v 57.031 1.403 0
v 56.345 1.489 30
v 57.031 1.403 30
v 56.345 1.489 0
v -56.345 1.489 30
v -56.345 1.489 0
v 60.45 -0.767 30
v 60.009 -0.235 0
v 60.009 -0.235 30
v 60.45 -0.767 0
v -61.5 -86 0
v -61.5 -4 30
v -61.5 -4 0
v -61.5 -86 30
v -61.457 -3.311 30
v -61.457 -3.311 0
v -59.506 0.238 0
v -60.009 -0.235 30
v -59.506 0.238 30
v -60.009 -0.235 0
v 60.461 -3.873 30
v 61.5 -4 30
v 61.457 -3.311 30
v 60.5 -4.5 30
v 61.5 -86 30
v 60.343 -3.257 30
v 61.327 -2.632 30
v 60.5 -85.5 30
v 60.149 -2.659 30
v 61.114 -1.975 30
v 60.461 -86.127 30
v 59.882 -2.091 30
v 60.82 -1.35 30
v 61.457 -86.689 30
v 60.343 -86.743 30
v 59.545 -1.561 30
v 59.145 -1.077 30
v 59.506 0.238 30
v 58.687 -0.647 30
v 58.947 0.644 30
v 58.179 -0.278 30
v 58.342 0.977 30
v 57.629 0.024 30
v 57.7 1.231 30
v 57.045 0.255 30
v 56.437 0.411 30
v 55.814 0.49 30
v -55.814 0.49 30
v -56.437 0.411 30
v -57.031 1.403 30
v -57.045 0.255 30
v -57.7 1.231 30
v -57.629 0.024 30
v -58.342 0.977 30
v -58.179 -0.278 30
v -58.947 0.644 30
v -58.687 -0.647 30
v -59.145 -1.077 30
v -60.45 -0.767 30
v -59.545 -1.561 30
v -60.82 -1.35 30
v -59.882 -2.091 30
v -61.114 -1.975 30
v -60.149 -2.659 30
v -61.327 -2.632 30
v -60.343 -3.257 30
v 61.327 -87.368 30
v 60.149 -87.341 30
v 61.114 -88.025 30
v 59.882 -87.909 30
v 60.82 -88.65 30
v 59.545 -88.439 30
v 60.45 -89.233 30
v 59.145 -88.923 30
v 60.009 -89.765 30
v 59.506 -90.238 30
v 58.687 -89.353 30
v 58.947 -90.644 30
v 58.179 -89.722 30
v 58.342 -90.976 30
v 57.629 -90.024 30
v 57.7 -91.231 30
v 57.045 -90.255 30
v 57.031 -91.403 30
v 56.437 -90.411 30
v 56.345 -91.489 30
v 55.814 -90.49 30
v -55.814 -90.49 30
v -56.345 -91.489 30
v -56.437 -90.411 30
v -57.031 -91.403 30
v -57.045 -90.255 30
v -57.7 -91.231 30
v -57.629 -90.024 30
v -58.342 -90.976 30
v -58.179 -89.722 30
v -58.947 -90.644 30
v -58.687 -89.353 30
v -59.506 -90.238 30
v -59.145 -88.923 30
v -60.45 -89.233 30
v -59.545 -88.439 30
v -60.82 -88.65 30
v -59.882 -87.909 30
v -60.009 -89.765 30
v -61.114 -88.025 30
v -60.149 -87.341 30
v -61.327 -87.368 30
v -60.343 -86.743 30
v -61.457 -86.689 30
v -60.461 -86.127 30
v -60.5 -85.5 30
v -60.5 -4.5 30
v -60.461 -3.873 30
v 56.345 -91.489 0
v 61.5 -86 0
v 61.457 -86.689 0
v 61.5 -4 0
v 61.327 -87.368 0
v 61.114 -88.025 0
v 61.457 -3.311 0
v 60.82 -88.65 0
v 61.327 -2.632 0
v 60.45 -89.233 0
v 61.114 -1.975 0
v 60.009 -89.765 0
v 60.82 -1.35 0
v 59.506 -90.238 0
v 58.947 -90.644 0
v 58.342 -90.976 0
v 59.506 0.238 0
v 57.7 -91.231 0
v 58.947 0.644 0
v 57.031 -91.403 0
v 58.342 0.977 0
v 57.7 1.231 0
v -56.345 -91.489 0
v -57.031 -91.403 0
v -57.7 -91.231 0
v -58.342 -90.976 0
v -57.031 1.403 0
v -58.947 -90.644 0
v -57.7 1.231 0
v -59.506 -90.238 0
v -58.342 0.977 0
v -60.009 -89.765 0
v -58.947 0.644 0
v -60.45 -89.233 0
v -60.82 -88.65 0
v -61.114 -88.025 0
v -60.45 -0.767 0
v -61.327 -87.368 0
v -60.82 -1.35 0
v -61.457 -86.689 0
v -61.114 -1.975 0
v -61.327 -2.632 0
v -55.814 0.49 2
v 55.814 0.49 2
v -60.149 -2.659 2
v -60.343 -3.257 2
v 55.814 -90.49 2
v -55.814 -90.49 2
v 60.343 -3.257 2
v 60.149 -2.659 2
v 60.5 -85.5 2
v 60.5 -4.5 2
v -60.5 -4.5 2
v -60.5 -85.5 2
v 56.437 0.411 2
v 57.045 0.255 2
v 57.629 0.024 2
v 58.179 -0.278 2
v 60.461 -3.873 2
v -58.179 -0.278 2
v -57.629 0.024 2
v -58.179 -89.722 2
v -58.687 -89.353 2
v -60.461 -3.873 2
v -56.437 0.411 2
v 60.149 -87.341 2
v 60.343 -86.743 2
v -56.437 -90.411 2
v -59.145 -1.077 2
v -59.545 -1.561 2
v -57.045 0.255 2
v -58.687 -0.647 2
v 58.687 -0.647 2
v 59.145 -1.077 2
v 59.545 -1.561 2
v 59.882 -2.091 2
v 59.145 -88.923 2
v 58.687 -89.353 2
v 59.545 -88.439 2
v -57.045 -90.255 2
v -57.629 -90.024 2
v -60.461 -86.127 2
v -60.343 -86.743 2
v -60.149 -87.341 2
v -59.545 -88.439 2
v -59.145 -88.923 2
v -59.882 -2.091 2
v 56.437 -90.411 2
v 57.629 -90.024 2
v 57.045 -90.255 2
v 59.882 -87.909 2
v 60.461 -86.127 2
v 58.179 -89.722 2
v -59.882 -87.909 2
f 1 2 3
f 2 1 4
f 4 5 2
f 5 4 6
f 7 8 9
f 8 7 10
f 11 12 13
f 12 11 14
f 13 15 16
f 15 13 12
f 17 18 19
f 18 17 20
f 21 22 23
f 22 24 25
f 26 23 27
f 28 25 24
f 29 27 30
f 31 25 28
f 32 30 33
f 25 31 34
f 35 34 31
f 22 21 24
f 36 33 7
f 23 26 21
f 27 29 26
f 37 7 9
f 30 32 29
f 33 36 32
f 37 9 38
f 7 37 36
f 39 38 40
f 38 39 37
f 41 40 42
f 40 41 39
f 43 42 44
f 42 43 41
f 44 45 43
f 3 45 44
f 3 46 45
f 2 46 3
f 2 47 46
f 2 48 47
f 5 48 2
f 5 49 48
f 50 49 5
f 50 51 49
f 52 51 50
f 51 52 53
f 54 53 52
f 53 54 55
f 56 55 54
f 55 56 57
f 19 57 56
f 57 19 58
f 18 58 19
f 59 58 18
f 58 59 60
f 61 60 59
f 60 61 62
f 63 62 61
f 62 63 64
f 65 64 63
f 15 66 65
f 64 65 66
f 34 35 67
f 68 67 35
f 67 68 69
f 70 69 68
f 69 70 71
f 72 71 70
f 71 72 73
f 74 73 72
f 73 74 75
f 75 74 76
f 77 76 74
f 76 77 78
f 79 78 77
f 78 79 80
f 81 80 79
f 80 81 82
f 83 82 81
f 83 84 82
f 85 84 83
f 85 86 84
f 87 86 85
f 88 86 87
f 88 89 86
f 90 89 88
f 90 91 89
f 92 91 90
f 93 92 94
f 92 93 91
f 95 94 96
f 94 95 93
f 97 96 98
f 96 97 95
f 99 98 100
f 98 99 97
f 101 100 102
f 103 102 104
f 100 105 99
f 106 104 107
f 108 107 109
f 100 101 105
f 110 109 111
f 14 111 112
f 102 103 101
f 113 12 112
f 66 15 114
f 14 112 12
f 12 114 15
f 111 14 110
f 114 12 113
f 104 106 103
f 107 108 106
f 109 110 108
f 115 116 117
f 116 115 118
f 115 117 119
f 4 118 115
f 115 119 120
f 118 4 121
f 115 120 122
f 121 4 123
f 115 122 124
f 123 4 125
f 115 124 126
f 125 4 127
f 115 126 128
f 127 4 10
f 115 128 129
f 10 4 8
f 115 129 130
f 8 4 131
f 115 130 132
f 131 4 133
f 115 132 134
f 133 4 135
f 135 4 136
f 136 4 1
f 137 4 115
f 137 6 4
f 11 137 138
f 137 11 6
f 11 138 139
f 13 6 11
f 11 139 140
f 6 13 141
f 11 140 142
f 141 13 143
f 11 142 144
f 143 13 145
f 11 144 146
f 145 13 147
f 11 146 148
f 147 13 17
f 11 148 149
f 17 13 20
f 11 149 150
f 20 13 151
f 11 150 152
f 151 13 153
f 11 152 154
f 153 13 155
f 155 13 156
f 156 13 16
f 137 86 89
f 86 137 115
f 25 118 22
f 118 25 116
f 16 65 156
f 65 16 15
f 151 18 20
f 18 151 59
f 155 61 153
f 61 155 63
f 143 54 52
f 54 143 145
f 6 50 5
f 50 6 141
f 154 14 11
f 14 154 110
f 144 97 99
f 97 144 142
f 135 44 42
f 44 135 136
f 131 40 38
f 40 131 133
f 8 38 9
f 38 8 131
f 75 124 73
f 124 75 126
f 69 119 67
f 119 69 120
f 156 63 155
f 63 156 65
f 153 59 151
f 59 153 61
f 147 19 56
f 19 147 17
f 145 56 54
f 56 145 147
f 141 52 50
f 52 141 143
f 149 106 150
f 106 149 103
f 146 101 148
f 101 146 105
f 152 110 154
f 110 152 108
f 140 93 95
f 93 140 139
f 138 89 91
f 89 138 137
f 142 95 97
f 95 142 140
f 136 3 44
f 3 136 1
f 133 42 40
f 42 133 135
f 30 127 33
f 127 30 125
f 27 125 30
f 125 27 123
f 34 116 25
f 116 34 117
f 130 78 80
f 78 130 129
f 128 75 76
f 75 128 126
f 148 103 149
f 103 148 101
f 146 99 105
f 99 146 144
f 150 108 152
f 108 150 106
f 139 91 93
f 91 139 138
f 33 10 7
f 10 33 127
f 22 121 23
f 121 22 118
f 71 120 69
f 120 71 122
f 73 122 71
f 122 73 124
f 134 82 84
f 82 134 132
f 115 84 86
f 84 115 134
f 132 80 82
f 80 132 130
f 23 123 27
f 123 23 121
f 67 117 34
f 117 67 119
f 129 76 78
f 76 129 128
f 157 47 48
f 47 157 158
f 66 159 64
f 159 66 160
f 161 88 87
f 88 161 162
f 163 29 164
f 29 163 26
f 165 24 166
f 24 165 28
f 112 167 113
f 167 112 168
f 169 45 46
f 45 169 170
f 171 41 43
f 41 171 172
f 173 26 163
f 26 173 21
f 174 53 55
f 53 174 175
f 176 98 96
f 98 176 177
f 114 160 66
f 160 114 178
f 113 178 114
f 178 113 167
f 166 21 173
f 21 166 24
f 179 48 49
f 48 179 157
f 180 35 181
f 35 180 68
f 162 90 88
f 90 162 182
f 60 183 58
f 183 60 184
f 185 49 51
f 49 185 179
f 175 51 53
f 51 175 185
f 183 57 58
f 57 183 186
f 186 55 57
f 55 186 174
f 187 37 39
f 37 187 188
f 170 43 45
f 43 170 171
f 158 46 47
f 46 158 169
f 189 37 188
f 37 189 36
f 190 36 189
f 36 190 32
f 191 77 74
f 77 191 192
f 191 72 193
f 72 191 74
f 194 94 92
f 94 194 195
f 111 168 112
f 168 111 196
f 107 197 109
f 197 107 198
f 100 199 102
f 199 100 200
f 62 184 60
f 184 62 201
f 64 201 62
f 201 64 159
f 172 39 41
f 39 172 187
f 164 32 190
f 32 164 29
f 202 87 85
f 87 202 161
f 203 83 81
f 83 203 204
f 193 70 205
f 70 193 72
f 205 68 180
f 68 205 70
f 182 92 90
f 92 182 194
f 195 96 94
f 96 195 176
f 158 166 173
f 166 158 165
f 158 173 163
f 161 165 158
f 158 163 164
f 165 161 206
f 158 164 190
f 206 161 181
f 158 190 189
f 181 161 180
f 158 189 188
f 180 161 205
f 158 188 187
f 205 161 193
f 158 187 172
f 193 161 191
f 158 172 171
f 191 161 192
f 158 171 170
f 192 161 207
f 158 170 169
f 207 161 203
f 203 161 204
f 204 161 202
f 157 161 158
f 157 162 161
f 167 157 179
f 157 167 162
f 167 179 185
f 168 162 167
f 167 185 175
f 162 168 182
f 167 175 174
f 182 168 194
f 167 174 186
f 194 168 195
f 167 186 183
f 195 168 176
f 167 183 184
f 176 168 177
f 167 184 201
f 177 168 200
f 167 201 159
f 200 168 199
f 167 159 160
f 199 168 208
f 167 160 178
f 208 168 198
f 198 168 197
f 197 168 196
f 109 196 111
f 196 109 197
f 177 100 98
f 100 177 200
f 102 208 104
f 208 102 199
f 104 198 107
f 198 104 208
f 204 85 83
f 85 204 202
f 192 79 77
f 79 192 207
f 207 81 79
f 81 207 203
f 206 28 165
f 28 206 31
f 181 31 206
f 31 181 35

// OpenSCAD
$fn = 50;


difference() {
	union() {
		translate(v = [0, -45.0000000000, 0]) {
			hull() {
				translate(v = [-56.0000000000, 41.0000000000, 0]) {
					cylinder(h = 30, r = 5.5000000000);
				}
				translate(v = [56.0000000000, 41.0000000000, 0]) {
					cylinder(h = 30, r = 5.5000000000);
				}
				translate(v = [-56.0000000000, -41.0000000000, 0]) {
					cylinder(h = 30, r = 5.5000000000);
				}
				translate(v = [56.0000000000, -41.0000000000, 0]) {
					cylinder(h = 30, r = 5.5000000000);
				}
			}
		}
	}
	union() {
		translate(v = [0, -45.0000000000, 2]) {
			hull() {
				translate(v = [-55.5000000000, 40.5000000000, 0]) {
					cylinder(h = 60, r = 5);
				}
				translate(v = [55.5000000000, 40.5000000000, 0]) {
					cylinder(h = 60, r = 5);
				}
				translate(v = [-55.5000000000, -40.5000000000, 0]) {
					cylinder(h = 60, r = 5);
				}
				translate(v = [55.5000000000, -40.5000000000, 0]) {
					cylinder(h = 60, r = 5);
				}
			}
		}
	}
}
